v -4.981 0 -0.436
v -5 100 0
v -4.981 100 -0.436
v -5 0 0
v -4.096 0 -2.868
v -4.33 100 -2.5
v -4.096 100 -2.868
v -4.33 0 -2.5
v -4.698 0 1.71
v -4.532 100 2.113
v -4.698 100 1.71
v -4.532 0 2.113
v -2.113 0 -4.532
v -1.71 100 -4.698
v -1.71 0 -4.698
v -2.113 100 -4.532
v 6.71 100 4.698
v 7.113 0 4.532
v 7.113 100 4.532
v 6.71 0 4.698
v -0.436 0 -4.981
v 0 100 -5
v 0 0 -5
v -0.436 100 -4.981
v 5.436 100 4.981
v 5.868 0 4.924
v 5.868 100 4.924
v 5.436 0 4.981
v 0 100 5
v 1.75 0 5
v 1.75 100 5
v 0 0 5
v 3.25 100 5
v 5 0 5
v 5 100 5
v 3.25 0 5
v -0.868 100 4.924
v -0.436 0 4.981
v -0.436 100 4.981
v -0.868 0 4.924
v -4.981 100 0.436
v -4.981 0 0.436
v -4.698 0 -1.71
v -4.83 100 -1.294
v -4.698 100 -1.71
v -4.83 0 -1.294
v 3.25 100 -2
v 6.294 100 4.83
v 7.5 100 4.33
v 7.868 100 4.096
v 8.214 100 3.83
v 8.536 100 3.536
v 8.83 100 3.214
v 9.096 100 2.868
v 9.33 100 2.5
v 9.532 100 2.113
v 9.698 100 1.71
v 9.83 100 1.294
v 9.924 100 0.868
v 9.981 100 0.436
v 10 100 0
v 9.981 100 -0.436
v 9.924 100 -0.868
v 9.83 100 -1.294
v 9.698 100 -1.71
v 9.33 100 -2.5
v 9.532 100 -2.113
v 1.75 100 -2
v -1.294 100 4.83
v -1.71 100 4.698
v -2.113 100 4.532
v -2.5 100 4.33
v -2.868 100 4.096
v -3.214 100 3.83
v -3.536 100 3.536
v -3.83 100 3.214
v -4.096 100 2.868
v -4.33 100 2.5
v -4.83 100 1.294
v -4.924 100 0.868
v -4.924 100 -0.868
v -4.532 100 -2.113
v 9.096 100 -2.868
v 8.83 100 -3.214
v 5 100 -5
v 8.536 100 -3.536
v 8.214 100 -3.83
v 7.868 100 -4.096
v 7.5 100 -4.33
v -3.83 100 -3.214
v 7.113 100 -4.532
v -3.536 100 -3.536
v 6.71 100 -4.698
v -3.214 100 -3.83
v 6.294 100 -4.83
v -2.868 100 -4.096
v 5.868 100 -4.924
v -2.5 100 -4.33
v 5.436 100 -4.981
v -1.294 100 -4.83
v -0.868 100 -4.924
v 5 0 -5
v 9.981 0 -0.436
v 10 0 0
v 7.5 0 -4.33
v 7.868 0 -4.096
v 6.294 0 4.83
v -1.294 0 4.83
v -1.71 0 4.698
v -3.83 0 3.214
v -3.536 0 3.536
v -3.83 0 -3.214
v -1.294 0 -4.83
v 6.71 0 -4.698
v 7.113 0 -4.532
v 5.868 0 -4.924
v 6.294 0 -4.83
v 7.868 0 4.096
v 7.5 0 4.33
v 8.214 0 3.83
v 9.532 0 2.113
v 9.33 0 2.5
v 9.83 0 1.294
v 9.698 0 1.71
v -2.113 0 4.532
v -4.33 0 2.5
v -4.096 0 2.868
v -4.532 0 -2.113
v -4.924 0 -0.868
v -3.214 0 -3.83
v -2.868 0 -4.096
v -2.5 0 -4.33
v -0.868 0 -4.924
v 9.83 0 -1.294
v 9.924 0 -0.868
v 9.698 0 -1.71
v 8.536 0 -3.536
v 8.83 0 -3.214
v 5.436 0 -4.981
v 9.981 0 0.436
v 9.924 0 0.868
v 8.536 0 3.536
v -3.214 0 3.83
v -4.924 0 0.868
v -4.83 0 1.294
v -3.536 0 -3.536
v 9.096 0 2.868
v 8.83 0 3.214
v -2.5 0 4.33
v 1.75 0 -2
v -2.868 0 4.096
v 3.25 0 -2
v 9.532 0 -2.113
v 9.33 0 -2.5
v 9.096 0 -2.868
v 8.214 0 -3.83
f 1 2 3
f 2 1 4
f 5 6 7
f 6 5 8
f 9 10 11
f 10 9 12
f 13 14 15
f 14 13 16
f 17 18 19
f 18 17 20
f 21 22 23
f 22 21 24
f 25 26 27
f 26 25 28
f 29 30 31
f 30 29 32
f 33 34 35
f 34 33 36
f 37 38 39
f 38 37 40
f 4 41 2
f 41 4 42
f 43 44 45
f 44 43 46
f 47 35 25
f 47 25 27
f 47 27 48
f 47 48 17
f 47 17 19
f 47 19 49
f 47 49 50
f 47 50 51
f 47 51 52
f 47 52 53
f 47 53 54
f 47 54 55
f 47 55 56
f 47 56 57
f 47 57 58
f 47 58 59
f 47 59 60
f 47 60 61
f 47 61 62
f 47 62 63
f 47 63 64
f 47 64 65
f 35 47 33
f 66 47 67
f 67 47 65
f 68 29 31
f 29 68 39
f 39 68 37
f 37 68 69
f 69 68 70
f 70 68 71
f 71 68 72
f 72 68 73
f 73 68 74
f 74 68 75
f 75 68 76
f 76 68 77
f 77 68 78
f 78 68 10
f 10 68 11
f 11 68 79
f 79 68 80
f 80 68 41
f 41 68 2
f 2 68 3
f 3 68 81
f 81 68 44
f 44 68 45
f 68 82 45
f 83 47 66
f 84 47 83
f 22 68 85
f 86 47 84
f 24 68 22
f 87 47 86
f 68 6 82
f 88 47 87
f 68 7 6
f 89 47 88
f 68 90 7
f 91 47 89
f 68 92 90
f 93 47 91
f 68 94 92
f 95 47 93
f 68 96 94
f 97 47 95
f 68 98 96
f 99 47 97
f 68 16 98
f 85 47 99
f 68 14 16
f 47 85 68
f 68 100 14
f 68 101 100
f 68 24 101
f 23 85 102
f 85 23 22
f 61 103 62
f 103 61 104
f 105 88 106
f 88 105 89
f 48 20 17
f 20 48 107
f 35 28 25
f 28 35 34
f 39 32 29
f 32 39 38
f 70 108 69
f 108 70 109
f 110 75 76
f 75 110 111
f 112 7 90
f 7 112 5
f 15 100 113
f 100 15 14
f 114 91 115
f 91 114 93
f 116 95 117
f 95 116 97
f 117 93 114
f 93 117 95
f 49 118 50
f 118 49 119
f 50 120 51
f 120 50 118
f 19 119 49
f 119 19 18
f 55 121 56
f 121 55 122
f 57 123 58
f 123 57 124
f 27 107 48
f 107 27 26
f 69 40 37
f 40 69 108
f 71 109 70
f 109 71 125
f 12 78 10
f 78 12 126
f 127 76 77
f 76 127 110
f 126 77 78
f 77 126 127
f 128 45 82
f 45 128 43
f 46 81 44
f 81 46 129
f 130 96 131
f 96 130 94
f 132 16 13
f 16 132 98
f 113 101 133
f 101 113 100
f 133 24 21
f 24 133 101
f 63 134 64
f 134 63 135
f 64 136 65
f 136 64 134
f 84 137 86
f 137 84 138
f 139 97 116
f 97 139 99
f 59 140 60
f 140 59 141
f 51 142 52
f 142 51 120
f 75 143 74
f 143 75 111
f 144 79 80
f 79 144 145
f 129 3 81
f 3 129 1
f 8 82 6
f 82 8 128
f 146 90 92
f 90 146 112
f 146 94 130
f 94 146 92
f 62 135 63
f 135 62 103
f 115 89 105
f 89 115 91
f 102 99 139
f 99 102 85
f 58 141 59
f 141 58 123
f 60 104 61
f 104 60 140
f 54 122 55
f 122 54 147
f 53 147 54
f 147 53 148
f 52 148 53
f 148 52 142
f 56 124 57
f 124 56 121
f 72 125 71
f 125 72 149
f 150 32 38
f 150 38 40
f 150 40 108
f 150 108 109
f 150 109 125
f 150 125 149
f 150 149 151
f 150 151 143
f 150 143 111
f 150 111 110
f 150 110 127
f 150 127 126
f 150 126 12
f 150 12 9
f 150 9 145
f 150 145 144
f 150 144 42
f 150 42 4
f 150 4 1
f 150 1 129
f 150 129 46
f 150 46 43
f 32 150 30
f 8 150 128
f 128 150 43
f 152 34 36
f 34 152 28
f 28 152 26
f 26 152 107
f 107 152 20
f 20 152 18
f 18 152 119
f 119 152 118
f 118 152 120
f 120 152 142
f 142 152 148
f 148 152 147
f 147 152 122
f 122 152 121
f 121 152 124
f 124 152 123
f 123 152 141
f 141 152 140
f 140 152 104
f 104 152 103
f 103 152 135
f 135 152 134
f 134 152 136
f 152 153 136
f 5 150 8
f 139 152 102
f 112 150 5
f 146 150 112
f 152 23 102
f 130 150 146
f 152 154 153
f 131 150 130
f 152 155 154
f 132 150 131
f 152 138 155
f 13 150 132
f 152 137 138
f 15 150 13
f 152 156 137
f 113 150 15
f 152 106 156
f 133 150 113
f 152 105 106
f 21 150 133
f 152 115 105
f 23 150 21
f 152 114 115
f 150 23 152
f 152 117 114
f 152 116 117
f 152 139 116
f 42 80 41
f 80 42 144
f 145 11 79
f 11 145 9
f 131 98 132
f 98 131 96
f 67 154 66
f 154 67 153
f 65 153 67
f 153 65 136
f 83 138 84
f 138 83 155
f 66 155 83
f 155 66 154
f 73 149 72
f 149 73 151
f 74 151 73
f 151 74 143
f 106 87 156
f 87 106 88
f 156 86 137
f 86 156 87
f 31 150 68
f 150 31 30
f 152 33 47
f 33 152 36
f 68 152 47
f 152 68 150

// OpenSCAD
$fa=5; $fs=0.1;

rotate([-90,0,0])
difference(){
	union(){
        hull(){
            cylinder(r=5,h=100);
            translate([5,0,0]) cylinder(r=5,h=100);
        }
	}

	union(){
        translate([2-0.25,-5,0]) cube([1.5, 7, 100]);
	}
}
